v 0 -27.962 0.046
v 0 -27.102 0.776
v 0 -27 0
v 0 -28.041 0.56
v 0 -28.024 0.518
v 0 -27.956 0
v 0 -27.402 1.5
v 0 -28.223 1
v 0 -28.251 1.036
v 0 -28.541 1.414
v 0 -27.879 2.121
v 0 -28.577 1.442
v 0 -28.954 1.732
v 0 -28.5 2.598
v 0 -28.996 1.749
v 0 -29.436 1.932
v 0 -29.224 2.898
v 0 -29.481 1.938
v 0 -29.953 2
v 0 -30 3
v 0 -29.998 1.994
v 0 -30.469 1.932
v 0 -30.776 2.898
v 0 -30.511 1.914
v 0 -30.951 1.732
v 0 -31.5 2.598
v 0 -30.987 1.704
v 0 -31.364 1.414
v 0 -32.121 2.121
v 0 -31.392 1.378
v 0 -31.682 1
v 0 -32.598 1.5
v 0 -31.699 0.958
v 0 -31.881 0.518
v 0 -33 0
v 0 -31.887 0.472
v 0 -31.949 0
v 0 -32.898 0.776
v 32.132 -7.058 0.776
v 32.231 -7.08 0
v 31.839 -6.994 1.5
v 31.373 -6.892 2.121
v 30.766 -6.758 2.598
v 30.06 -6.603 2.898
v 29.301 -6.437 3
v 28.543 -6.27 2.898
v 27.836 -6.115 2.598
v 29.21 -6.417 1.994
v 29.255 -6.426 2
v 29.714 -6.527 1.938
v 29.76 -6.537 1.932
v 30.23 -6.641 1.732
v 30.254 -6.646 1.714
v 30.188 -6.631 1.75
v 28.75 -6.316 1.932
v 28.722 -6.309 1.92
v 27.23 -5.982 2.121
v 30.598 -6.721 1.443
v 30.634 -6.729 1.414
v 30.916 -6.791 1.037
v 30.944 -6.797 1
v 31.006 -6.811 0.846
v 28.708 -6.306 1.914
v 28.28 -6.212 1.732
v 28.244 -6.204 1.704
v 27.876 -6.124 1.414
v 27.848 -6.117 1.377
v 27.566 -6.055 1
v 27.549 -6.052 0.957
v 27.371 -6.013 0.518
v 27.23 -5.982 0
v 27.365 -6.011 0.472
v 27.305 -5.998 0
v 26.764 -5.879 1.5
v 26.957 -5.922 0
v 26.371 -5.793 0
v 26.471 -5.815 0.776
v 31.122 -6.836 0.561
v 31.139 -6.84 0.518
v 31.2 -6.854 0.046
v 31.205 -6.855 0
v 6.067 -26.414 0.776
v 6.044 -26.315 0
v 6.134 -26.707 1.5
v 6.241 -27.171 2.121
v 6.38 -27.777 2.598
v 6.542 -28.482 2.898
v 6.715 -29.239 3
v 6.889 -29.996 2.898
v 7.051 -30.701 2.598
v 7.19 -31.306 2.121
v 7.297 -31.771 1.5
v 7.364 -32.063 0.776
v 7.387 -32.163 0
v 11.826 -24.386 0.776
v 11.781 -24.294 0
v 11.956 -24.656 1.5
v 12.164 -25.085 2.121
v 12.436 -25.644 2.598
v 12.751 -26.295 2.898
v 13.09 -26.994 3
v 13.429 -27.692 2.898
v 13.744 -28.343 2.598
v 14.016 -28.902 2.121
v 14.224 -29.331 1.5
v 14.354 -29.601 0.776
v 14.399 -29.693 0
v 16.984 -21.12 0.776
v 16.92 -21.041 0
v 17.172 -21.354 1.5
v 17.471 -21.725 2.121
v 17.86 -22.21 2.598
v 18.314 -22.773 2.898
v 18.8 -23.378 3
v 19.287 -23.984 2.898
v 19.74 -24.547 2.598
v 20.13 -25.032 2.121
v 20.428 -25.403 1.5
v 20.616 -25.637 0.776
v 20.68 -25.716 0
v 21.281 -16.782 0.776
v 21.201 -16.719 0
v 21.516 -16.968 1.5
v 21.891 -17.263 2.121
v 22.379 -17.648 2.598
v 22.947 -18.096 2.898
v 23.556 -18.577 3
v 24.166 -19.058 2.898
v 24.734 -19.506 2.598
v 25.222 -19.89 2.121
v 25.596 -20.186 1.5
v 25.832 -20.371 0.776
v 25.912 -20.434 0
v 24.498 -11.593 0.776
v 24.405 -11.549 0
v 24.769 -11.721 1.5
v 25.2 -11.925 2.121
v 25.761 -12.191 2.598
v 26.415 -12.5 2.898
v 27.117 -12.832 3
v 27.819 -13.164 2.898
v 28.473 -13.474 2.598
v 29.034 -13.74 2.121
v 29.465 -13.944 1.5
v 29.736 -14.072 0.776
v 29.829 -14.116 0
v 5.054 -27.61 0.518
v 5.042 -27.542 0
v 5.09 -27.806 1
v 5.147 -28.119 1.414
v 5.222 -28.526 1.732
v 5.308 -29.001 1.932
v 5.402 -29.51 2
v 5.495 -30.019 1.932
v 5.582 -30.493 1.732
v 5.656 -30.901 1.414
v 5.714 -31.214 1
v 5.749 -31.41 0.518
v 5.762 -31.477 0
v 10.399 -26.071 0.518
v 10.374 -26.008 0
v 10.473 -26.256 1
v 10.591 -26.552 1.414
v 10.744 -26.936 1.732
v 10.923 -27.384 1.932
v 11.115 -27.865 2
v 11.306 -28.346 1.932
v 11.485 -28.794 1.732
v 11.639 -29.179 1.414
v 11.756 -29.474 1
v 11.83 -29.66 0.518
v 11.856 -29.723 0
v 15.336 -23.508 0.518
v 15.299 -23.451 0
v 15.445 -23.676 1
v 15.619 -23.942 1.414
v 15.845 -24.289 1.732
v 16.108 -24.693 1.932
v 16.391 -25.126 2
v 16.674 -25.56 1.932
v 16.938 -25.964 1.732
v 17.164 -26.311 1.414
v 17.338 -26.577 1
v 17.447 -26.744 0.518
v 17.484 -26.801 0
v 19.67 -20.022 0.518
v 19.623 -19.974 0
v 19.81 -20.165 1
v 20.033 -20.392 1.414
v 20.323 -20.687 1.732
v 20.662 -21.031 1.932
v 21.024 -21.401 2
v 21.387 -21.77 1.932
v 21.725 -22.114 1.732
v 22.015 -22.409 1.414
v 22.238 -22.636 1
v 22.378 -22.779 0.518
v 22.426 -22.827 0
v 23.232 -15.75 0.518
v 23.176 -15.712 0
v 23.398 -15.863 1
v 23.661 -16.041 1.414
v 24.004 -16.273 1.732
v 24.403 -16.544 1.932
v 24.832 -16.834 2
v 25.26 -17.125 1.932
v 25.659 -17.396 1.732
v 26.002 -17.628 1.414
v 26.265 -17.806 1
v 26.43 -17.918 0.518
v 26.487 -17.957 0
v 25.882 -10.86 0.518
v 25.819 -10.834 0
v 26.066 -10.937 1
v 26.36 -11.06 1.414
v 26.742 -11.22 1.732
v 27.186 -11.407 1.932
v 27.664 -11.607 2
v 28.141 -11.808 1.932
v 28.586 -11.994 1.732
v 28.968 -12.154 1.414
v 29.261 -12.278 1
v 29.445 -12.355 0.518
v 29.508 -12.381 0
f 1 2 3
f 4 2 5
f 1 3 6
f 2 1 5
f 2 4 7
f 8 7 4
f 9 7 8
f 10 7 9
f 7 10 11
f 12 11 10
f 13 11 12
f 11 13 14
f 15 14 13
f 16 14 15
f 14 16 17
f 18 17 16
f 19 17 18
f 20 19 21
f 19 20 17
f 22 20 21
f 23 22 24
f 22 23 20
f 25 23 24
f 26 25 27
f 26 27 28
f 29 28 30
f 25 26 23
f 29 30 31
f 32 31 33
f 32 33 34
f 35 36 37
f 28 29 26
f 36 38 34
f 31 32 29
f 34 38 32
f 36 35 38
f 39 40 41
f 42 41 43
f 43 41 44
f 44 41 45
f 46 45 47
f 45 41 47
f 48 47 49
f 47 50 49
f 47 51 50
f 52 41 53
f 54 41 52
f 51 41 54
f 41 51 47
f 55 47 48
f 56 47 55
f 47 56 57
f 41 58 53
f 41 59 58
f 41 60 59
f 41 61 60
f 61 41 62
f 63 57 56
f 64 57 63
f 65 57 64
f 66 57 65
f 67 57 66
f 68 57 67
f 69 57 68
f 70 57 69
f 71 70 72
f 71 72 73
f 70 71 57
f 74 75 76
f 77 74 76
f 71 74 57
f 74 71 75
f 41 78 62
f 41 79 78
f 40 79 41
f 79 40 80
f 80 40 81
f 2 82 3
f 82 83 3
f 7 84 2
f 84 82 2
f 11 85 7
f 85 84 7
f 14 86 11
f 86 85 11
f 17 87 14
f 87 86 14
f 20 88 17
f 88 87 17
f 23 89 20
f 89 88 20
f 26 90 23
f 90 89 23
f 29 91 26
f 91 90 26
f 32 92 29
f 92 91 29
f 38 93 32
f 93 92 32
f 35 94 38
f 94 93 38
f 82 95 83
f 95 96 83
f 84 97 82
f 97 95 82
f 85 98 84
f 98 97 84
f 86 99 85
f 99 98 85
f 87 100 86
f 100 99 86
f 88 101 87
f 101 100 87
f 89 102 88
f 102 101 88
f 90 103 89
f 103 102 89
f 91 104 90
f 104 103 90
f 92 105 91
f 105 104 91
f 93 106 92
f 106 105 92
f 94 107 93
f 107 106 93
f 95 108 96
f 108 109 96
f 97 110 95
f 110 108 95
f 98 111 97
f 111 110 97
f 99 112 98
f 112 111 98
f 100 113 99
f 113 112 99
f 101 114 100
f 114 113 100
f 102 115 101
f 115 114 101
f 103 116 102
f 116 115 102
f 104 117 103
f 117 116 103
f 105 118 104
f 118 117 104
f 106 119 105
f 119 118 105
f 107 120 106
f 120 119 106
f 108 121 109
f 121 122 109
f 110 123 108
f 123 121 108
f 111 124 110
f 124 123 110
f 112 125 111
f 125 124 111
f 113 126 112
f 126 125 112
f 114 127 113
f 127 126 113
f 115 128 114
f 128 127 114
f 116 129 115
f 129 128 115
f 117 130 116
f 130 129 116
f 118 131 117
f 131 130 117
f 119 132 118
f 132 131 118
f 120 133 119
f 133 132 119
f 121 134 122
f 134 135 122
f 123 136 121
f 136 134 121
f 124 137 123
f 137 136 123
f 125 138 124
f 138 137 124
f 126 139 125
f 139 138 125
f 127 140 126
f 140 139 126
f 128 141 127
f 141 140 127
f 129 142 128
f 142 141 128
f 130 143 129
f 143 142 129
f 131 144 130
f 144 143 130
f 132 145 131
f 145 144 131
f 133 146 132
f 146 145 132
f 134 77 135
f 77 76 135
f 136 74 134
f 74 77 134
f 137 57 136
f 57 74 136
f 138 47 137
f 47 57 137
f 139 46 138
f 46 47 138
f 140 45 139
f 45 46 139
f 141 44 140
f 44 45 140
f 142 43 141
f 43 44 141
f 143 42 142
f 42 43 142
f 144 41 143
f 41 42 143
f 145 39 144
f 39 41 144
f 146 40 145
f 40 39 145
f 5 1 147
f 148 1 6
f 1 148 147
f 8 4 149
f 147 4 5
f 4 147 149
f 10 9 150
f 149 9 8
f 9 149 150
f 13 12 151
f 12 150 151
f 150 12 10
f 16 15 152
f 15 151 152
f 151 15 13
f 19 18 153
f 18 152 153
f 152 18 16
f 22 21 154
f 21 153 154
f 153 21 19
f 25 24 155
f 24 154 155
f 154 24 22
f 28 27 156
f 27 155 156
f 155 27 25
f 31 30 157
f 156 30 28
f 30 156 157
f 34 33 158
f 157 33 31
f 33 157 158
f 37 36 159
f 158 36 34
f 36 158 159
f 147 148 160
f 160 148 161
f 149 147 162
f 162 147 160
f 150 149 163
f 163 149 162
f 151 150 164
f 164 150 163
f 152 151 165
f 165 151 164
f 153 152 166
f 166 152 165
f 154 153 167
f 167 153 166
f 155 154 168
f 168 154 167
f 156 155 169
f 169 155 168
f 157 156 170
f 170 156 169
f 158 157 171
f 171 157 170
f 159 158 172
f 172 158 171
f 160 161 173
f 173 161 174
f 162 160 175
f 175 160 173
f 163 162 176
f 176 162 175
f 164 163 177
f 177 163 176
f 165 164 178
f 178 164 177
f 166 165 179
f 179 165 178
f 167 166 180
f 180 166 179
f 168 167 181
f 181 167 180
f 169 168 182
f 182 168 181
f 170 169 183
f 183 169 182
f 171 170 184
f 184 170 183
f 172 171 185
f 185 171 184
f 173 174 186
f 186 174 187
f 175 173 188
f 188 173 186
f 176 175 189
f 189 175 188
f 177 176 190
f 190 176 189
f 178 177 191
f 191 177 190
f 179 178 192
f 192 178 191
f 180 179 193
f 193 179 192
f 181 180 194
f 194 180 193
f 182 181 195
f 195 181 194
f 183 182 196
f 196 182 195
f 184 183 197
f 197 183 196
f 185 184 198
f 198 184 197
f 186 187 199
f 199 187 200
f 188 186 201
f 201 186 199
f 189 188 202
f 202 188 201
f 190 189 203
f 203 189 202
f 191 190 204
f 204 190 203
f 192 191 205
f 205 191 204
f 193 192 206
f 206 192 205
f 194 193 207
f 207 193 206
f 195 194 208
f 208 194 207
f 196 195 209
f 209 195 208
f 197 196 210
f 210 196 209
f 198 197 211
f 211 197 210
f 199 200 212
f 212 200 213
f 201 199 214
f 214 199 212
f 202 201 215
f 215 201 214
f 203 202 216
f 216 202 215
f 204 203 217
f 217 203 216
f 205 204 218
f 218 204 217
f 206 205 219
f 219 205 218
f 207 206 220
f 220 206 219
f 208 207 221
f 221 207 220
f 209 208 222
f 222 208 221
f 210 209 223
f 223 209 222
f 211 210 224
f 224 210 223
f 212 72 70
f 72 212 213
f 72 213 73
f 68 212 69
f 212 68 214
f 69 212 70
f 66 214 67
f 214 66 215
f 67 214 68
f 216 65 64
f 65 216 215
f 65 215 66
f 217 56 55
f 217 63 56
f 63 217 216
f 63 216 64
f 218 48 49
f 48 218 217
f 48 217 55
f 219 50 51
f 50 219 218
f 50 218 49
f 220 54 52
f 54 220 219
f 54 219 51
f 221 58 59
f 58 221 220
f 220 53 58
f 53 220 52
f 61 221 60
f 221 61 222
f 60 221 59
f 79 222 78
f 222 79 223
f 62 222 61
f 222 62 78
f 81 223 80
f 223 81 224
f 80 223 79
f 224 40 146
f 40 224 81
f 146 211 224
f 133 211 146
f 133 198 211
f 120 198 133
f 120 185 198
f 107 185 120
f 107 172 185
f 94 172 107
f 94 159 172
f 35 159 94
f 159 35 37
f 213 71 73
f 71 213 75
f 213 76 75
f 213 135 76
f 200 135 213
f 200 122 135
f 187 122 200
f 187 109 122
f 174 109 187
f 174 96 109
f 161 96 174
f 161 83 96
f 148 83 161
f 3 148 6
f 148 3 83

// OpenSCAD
// file: ../build_environments.scad
// build_environments.scad: modules to build level sections
//

module pool(diameter=10.0, wall_height=2.0, step_width=3.0, connections=[])
{
    difference() {
        union() {
        difference() {
            cylinder(h=0.5,r1=diameter+step_width,r2=diameter+step_width,$fn=48);
            translate([0,0,-0.1])
                cylinder(h=0.7,r1=diameter,r2=diameter,$fn=48);
        }
        difference() {
            cylinder(h=wall_height,r1=diameter+step_width+1.0,r2=diameter+step_width+1.0,$fn=48);
            translate([0,0,-0.1])
                cylinder(h=wall_height+0.2,r1=diameter+step_width,r2=diameter+step_width,$fn=48);
        }
        }
    
        for (c = connections)
        {
            rotate([0,90,0]) {
                angle = atan2(c[1],c[0]);
                rotate([-angle,0,0]) {
                    cylinder(h=diameter+5.0,r1=c[2],r2=c[2],$fn=48);
                }
            }
        }
    }
}

module straight(length=10.0, width=2.0, dy1=0.0, dy2=0.0, dz=0.0)
{
    dims = [0, 0, 0, 0, 0, (dz/length)];
    matrix = [
        [ 1, dims[0], dims[1], 0 ],
        [ dims[2], 1, dims[4], 0 ],
        [ dims[5], dims[3], 1, 0 ],
        [ 0, 0, 0, 1 ]
    ];
    multmatrix(matrix)
    difference() {
        translate([dy1,0,0])
        union() {
            rotate([0,90,0]) {
                difference() {
                    cylinder(h=(length-dy1-dy2),r1=width+1.0,r2=width+1.0,$fn=24);
                    translate([0,0,-0.1])
                        cylinder(h=(length-dy1-dy2+0.2),r1=width,r2=width,$fn=24);
                }
                difference() {
                    cylinder(h=1.0,r1=width+2.0,r2=width+2.0,$fn=24);
                    translate([0,0,-0.1])
                        cylinder(h=1.2,r1=width,r2=width,$fn=24);
                }
                translate([0,0,(length-dy1-dy2)-1.0]) {
                    difference() {
                        cylinder(h=1.0,r1=width+2.0,r2=width+2.0,$fn=24);
                        translate([0,0,-0.1])
                            cylinder(h=1.2,r1=width,r2=width,$fn=24);
                    }
                }
            }
        }
        translate([0,0,-(2*width+4.0)/2])
            cube([3*length,3*length,2*width+4.0],center=true);
    }
}

module curve(p0=[0,0], center=[0,0], dir=1, angle=0.0, width=2.0)
{
    radius = sqrt((p0[0]-center[0])*(p0[0]-center[0]) + (p0[1]-center[1])*(p0[1]-center[1]));
    if (dir == 0) {
        difference() {
            rotate([0,0,-90])
            difference() {
                rotate_extrude(angle = angle, convexity = 10, $fn=32)
                    translate([radius, 0, 0])
                        circle(r = width+1.0,$fn=24);
                rotate([0,0,-1.0])
                    rotate_extrude(angle = angle+2.0, convexity = 10, $fn=32)
                        translate([radius, 0, 0])
                            circle(r = width,$fn=24);
            }
            translate([0,0,-(2*width+4.0)/2])
                cube([5*radius,5*radius,2*width+4.0],center=true);
        }
    }
    else {
        difference() {
            rotate([0,0,90])
            difference() {
                rotate_extrude(angle = -angle, convexity = 10, $fn=32)
                    translate([radius, 0, 0])
                        circle(r = width+1.0,$fn=24);
                rotate([0,0,1.0])
                    rotate_extrude(angle = -angle-2.0, convexity = 10, $fn=32)
                        translate([radius, 0, 0])
                            circle(r = width,$fn=24);
            }
            translate([0,0,-(2*width+4.0)/2])
                cube([5*radius,5*radius,2*width+4.0],center=true);
        }
    }

}

// test pool
//pool(diameter=12.0000, wall_height=3.0000, step_width=3.0000, connections=[[0.0000,-26.0000,2.0000], [23.6074,0.0000,2.0000]]);

// test straight, slope
//straight(length=26.0000, width=2.0000, dy1=11.8322, dy2=6.7082, dz=0.0000);
//straight(length=29.1549, width=12.0000, dy1=0.0000, dy2=0.0000, dz=-15.0000);

// test curve
//curve(p0=[23.6074, 0.0000], center=[23.6074, 5.0000], dir=0, angle=60.1011, width=2.0000);
//curve(p0=[33.6426, 12.4219], center=[37.9771, 9.9295], dir=1, angle=120.4627, width=2.0000);
// main file
use <../build_environments.scad>;
curve(p0=[-13.2503, 13.1336], center=[-34.2239, -8.3166], dir=0, angle=77.6106, width=2.0000);
